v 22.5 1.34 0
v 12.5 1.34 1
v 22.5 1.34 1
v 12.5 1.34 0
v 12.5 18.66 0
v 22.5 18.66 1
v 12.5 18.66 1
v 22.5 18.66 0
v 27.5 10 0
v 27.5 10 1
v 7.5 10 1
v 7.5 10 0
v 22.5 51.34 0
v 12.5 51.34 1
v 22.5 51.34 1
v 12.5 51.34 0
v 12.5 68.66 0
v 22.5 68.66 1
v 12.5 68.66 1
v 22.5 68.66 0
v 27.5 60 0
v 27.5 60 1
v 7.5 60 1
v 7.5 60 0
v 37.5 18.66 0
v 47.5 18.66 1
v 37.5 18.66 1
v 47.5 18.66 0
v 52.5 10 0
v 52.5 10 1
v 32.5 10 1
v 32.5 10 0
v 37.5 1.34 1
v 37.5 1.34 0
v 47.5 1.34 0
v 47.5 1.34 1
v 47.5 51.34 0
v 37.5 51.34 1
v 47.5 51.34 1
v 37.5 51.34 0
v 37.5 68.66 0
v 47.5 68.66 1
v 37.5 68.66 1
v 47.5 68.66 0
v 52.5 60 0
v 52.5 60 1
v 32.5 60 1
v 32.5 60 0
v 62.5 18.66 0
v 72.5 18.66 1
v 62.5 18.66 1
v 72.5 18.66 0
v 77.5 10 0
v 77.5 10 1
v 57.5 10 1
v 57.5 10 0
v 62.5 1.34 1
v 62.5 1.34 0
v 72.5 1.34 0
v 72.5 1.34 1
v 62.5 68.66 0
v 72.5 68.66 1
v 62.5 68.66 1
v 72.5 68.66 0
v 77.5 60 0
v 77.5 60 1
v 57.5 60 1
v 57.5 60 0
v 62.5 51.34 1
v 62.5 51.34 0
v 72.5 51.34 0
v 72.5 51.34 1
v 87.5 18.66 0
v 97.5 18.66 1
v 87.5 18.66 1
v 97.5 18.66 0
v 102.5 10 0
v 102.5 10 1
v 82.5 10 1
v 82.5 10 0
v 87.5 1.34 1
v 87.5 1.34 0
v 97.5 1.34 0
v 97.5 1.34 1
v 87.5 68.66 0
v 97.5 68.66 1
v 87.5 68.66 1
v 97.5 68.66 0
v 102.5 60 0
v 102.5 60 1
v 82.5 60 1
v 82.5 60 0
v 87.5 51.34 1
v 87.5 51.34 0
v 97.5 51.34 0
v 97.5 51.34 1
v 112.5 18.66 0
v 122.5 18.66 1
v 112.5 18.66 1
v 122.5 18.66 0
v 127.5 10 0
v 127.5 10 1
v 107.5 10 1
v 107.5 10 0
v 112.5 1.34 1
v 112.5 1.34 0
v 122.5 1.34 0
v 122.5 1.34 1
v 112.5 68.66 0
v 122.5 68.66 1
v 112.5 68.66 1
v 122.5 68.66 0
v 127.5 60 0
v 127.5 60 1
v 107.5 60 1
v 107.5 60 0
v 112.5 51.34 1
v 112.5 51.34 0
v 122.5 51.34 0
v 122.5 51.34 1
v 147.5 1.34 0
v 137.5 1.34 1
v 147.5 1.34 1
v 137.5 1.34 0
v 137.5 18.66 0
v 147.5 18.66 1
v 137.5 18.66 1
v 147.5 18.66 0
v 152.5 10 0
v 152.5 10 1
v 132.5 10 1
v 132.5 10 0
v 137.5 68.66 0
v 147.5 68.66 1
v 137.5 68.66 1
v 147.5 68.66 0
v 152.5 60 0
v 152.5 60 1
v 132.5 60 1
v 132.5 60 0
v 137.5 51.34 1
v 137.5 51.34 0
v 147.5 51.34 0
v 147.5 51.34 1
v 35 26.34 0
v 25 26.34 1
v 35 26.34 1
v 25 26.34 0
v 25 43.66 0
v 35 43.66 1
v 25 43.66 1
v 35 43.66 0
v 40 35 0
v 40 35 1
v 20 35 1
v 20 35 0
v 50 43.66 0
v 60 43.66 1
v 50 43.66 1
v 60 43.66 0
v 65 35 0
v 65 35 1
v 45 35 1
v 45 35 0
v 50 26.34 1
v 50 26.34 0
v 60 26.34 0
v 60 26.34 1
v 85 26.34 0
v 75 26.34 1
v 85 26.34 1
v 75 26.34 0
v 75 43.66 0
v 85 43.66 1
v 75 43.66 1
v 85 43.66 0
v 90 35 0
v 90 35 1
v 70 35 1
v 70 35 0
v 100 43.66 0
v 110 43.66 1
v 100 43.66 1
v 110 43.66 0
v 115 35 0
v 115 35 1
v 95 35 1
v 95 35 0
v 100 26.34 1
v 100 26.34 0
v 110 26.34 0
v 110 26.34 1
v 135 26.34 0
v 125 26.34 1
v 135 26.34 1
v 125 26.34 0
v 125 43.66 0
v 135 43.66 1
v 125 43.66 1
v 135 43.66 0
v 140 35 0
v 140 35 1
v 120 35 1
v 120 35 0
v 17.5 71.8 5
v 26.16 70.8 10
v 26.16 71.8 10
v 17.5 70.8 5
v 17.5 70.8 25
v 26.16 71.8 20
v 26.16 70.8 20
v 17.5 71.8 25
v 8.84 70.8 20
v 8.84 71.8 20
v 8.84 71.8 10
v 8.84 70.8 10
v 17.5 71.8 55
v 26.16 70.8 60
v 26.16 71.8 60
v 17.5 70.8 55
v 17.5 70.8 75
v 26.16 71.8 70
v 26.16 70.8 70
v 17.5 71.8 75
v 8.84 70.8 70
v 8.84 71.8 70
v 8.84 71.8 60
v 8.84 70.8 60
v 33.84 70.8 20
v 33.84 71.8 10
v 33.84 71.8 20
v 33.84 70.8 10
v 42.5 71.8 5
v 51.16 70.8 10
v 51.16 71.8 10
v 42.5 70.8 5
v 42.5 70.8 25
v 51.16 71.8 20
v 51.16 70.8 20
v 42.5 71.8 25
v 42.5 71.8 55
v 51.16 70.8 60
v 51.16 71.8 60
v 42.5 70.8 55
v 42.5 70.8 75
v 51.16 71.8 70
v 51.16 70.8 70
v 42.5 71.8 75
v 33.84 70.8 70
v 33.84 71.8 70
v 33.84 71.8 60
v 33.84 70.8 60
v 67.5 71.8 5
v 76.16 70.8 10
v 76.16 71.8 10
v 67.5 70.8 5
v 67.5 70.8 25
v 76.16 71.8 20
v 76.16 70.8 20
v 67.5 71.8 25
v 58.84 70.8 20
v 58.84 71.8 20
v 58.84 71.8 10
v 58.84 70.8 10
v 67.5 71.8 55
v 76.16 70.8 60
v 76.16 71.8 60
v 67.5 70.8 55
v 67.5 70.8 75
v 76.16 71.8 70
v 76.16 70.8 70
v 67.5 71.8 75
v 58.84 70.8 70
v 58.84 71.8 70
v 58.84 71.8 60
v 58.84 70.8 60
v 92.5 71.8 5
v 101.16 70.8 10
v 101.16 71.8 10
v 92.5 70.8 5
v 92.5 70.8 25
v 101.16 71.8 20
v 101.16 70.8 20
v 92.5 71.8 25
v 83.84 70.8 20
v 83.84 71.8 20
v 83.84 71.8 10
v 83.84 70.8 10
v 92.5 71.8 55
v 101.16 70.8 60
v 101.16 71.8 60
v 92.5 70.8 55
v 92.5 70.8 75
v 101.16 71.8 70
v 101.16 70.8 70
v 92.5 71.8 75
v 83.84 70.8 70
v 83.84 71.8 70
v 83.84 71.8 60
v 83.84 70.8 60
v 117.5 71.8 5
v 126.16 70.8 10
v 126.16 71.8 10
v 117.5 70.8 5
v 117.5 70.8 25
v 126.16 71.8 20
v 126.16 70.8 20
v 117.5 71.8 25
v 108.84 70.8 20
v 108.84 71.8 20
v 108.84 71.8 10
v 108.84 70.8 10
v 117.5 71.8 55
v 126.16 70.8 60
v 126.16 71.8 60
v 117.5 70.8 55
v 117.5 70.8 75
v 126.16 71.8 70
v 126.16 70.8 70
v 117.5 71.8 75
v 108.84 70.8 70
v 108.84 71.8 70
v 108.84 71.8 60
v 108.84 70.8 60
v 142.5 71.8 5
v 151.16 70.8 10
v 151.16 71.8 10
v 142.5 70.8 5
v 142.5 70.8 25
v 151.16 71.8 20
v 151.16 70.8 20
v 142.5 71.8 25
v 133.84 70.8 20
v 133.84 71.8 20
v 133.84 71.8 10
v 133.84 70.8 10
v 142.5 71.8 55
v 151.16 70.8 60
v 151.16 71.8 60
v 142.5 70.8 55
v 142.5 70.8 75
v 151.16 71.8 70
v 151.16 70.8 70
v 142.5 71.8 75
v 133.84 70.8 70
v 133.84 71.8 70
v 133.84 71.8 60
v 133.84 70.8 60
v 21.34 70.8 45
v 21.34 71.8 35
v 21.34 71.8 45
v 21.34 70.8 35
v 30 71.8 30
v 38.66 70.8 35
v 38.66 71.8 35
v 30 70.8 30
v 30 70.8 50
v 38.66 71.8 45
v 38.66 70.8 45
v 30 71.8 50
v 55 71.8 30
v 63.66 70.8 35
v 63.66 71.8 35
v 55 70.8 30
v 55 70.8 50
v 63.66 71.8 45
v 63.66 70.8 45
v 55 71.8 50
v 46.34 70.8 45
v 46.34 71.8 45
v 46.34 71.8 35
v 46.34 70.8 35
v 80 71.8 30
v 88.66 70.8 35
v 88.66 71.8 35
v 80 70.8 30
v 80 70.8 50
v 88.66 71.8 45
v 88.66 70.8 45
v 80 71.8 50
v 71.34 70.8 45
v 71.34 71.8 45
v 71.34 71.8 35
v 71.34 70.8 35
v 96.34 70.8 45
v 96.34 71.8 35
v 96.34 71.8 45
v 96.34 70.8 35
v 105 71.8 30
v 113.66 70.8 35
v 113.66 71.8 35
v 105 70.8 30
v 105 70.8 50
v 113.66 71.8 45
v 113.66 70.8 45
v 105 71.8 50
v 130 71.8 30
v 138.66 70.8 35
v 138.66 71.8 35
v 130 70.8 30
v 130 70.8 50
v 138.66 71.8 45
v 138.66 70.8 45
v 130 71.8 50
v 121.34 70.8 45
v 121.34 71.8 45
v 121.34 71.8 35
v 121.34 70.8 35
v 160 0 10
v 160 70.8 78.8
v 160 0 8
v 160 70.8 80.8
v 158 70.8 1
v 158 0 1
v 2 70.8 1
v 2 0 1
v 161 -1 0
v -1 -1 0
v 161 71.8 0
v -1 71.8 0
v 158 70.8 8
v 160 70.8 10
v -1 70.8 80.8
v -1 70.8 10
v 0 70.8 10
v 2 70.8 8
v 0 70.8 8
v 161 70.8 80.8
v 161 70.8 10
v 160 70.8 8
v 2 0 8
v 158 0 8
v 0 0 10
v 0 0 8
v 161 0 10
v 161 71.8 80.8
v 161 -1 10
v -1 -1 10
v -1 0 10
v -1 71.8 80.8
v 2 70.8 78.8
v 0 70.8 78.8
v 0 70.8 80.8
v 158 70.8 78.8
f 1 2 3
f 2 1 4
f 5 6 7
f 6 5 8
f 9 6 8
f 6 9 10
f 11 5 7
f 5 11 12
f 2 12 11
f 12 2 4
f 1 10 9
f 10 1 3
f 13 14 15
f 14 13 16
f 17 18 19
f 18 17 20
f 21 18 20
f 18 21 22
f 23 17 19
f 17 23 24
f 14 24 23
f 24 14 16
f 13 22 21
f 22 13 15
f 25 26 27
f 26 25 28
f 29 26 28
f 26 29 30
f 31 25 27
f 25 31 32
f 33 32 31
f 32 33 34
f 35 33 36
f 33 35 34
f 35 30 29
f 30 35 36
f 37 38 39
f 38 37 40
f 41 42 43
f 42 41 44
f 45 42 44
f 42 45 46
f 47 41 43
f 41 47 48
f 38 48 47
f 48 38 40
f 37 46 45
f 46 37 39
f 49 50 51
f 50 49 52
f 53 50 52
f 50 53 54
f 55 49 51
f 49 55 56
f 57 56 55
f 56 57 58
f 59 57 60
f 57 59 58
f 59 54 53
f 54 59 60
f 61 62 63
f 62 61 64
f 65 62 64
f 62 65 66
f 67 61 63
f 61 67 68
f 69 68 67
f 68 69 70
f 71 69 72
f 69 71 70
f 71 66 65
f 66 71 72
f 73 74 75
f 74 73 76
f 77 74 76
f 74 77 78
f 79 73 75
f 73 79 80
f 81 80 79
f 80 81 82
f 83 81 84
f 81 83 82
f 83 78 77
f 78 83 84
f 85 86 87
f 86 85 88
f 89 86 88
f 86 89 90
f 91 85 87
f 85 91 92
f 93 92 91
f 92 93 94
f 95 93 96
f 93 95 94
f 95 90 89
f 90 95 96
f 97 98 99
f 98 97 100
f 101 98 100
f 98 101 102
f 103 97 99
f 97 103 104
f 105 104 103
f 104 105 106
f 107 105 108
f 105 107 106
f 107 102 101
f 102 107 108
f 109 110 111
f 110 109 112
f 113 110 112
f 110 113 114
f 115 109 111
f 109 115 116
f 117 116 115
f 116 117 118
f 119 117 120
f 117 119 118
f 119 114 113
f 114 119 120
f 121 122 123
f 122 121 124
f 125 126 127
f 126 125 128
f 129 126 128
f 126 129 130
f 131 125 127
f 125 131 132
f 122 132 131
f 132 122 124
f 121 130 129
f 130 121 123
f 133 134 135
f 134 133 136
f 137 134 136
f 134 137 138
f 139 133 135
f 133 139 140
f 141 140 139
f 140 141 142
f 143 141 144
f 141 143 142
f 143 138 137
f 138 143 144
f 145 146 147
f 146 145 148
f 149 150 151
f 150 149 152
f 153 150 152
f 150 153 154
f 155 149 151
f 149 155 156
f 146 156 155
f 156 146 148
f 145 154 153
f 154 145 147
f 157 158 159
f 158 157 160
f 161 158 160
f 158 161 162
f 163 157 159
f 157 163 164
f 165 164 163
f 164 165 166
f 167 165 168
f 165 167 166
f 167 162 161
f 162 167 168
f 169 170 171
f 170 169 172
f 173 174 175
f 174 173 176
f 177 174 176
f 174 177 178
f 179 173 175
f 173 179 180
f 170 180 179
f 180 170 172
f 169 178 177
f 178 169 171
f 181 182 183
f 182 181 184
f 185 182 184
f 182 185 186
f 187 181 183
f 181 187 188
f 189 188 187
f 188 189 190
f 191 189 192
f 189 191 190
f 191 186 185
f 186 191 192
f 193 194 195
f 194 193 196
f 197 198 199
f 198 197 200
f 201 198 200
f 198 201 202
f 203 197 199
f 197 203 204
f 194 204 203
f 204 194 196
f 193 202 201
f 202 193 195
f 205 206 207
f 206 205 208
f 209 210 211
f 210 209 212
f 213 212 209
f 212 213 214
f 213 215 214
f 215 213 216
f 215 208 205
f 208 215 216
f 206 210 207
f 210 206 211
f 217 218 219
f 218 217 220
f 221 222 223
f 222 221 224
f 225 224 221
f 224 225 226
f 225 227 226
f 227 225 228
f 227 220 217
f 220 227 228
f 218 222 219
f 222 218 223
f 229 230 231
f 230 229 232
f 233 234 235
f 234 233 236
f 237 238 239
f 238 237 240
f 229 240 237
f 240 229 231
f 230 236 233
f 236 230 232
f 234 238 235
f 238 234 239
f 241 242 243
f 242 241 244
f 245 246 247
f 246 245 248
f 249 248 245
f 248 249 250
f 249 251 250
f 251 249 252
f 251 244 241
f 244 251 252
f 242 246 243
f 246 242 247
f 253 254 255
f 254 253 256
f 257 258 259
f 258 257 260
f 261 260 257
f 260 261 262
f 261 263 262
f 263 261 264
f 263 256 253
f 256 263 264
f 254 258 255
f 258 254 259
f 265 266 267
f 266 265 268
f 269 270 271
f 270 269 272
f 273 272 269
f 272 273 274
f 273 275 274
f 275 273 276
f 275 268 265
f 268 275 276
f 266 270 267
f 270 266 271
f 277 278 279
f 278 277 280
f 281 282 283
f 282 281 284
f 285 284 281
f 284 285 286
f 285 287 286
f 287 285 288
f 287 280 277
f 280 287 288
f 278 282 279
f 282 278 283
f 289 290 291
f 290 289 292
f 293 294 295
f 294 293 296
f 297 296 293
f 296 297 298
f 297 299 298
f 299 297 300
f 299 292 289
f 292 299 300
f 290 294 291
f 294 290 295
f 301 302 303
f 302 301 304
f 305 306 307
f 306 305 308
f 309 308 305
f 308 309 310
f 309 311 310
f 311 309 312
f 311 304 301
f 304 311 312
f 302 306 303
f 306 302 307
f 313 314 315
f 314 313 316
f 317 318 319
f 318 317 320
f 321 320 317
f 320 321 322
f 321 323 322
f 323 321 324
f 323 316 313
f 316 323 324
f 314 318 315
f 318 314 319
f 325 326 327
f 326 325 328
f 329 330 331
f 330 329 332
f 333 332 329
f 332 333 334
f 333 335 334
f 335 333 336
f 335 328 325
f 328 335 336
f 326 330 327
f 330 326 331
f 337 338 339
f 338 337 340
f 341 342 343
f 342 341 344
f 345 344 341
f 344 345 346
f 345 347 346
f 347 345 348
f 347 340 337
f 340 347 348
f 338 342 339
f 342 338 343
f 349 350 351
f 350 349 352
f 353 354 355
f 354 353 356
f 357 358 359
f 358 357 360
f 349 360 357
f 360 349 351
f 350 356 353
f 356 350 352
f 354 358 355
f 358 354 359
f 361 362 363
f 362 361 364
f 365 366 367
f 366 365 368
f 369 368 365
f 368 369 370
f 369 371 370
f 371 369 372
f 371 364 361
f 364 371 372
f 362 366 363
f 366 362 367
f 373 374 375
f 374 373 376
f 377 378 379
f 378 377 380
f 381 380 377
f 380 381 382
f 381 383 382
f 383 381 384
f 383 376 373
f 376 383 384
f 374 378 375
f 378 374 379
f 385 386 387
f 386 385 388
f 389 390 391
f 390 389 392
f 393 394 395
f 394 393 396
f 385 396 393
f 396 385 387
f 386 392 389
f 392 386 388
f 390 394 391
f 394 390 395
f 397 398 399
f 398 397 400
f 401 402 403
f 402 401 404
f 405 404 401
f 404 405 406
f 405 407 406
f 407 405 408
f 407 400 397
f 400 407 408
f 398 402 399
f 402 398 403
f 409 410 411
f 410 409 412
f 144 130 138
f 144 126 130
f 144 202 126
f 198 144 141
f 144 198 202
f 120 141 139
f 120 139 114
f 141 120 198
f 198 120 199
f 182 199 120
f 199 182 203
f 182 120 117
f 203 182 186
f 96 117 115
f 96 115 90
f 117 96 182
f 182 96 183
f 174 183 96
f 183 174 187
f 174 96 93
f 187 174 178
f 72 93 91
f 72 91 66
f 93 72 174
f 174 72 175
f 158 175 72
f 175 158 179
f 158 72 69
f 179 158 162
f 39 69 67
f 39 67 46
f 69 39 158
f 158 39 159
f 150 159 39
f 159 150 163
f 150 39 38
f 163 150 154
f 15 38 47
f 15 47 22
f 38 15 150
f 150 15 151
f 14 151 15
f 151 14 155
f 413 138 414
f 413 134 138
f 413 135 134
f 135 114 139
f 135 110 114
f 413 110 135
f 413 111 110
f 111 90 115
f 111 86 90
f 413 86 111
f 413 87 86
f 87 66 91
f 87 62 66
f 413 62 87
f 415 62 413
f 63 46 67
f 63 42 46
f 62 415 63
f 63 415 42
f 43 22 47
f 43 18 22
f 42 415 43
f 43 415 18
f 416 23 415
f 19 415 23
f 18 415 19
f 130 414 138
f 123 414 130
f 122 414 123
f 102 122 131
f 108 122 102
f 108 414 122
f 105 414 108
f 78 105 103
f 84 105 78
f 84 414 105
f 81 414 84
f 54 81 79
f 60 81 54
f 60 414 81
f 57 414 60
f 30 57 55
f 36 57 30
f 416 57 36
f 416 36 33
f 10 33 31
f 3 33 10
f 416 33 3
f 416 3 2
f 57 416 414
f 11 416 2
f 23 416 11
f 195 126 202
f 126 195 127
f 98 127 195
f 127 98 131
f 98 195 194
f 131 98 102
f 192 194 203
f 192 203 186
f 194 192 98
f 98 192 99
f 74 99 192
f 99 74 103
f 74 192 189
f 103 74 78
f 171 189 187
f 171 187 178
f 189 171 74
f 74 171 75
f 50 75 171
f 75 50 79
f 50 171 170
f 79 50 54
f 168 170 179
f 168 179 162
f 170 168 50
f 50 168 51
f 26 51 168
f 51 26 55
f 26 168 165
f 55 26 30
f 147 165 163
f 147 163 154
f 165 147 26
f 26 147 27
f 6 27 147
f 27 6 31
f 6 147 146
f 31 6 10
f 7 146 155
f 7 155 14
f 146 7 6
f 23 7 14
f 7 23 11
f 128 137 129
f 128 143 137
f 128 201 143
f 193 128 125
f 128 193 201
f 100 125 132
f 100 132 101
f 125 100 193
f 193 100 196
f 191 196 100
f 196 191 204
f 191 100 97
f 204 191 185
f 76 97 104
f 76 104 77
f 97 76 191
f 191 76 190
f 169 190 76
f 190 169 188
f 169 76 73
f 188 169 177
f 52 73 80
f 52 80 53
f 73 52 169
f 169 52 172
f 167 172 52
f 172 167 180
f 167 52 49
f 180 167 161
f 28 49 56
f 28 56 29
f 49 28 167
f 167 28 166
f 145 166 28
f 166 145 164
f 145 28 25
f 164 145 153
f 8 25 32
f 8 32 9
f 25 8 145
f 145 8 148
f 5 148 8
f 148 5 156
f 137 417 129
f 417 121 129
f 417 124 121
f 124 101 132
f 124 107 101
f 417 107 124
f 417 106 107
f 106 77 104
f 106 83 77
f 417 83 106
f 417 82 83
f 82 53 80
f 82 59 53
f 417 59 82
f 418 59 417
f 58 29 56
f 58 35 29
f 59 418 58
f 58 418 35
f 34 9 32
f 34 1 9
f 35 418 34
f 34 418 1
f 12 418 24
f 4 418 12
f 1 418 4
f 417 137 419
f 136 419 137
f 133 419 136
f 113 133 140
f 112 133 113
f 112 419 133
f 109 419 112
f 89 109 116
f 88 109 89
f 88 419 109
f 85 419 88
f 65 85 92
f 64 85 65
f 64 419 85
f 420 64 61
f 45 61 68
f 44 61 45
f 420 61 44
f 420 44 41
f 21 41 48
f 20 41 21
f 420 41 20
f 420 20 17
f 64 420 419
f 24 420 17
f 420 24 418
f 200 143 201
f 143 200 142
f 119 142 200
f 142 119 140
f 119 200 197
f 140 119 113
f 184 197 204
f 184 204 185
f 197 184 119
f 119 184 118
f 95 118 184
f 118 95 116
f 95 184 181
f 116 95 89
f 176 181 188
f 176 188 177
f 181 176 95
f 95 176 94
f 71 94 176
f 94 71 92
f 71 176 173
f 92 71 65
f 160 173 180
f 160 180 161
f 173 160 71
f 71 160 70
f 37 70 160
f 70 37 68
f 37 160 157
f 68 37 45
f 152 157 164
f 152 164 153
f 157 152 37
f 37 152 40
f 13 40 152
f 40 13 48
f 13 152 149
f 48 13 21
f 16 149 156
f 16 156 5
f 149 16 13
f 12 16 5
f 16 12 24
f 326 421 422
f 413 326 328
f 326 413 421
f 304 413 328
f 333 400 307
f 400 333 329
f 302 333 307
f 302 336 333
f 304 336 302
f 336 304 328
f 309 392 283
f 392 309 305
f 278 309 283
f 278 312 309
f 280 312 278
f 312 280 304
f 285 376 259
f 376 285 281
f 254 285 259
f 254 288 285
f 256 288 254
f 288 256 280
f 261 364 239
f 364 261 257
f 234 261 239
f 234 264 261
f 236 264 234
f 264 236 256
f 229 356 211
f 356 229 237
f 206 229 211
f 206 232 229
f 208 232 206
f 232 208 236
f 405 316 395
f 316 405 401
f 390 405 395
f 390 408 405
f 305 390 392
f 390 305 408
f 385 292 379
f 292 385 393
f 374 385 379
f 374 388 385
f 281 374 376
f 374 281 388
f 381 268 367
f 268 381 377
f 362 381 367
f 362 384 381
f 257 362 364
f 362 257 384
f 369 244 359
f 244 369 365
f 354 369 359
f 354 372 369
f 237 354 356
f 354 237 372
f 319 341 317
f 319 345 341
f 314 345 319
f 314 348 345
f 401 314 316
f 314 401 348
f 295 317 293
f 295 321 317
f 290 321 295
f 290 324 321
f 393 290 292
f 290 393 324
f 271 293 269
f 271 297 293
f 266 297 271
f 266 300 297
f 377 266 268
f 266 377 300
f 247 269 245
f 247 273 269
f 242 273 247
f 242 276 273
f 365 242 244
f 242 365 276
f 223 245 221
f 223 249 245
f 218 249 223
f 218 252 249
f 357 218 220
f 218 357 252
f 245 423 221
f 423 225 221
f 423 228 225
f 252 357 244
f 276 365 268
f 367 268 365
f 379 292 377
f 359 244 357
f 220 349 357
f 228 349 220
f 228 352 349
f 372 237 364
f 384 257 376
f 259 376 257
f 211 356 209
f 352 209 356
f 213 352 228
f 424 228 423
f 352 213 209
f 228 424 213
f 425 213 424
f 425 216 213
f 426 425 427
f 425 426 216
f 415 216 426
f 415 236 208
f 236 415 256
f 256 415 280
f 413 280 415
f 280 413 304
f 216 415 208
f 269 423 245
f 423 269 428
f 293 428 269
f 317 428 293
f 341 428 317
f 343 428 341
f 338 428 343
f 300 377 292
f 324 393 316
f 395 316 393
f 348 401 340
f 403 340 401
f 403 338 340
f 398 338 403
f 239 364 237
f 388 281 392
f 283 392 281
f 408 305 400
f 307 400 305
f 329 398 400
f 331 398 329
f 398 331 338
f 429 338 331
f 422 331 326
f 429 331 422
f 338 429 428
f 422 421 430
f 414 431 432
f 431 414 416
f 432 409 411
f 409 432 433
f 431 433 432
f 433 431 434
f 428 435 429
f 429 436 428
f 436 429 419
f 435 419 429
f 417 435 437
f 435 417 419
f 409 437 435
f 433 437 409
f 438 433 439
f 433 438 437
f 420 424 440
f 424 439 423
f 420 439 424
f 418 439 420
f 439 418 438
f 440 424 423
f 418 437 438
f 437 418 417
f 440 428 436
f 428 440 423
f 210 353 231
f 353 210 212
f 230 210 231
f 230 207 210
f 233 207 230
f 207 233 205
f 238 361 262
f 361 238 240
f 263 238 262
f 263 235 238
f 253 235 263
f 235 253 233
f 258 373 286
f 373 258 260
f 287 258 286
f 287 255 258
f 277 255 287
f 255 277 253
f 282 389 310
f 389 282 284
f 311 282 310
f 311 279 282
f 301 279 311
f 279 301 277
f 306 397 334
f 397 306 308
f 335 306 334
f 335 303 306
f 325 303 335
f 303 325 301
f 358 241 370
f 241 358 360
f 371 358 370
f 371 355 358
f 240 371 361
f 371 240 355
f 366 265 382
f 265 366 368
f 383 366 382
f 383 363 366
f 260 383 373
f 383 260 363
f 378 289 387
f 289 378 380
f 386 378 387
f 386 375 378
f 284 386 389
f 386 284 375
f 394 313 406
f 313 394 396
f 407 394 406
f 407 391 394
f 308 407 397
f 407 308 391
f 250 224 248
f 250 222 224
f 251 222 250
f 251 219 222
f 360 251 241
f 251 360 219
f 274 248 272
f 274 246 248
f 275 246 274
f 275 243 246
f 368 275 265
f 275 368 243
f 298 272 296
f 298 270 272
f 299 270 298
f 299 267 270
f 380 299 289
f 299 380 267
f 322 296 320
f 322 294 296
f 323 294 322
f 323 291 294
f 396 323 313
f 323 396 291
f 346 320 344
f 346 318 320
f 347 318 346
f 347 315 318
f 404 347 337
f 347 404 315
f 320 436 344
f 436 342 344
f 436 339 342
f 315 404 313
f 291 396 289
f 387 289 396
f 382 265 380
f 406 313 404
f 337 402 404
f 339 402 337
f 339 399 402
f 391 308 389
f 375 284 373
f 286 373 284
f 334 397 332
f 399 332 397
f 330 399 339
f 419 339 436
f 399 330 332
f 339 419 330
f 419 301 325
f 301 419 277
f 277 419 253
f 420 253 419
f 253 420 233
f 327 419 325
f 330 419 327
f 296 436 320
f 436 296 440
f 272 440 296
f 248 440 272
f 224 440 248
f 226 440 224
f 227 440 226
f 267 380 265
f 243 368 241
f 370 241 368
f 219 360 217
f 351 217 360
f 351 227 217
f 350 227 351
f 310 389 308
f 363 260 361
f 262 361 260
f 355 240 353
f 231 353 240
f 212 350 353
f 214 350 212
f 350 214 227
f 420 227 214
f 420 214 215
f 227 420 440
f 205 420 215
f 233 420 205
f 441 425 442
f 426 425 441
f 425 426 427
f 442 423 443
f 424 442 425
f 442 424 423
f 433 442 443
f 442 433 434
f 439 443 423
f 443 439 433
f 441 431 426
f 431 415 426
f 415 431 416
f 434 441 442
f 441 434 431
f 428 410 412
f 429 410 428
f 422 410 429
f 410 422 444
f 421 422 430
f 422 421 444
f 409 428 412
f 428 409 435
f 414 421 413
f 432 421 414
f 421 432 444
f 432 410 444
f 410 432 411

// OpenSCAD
union() difference() { 
  union() { 
    // Base plate
    cube(size = [160,70.8,1], center = false);
    // Front plate
    translate([-1,-1,0])    
      cube(size = [162,1,10], center = false); 
    // Back plate
    translate([-1,70.8,0])    
      cube(size = [162,1,80.8], center = false); 
    // Left plate
    translate([-1,0,10]) {
      rotate([90,180,90]) {
        linear_extrude(1) {
          polygon(points=[[0,0],[-70.8,0],[-70.8,-70.8]], paths=[[0,1,2]]);
        }
      }
    }
    translate([0,0,8]) {
      rotate([90,180,90]) {
        linear_extrude(2) {
          polygon(points=[[0,0],[-70.8,0],[-70.8,-70.8]], paths=[[0,1,2]]);
        }
      }
    }
    translate([-1,-1,0])    
      cube(size = [1,72.8,10], center = false); 
    translate([-1,-1,0])    
      cube(size = [3,72.8,8], center = false);; 
    // Right plate
    translate([160,0,10]) {
      rotate([90,180,90]) {
        linear_extrude(1) {
          polygon(points=[[0,0],[-70.8,0],[-70.8,-70.8]], paths=[[0,1,2]]);
        }
      }
    }
    translate([158,0,8]) {
      rotate([90,180,90]) {
        linear_extrude(2) {
          polygon(points=[[0,0],[-70.8,0],[-70.8,-70.8]], paths=[[0,1,2]]);
        }
      }
    }
    translate([160,-1,0])    
      cube(size = [1,72.8,10], center = false); 
    translate([158,-1,0])    
      cube(size = [2,72.8,8], center = false);; 
  }
  
  // Baseplate honey
  $fn=6;
  for (x = [0:5]){
    translate([17.5+25*x, 10, 0])
      cylinder(h = 5, r=10, center = true);
    translate([17.5+25*x, 60, 0])
      cylinder(h = 5, r=10, center = true);
  }
  for (x = [0:4]){
    translate([30+25*x, 35, 0])
      cylinder(h = 5, r=10, center = true);
  }
  // Backplate honey
  for (x = [0:5]){
    translate([17.5+25*x, 70, 15])
      rotate([180,90,90]) {
        cylinder(h = 12, r=10, center = true);
      }
    translate([17.5+25*x, 70, 65])
      rotate([180,90,90]) {
        cylinder(h = 12, r=10, center = true);
      }
  }
  for (x = [0:4]){
    translate([30+25*x, 70, 40])
      rotate([180,90,90]) {
        cylinder(h = 10, r=10, center = true);
      }
  } 
}
